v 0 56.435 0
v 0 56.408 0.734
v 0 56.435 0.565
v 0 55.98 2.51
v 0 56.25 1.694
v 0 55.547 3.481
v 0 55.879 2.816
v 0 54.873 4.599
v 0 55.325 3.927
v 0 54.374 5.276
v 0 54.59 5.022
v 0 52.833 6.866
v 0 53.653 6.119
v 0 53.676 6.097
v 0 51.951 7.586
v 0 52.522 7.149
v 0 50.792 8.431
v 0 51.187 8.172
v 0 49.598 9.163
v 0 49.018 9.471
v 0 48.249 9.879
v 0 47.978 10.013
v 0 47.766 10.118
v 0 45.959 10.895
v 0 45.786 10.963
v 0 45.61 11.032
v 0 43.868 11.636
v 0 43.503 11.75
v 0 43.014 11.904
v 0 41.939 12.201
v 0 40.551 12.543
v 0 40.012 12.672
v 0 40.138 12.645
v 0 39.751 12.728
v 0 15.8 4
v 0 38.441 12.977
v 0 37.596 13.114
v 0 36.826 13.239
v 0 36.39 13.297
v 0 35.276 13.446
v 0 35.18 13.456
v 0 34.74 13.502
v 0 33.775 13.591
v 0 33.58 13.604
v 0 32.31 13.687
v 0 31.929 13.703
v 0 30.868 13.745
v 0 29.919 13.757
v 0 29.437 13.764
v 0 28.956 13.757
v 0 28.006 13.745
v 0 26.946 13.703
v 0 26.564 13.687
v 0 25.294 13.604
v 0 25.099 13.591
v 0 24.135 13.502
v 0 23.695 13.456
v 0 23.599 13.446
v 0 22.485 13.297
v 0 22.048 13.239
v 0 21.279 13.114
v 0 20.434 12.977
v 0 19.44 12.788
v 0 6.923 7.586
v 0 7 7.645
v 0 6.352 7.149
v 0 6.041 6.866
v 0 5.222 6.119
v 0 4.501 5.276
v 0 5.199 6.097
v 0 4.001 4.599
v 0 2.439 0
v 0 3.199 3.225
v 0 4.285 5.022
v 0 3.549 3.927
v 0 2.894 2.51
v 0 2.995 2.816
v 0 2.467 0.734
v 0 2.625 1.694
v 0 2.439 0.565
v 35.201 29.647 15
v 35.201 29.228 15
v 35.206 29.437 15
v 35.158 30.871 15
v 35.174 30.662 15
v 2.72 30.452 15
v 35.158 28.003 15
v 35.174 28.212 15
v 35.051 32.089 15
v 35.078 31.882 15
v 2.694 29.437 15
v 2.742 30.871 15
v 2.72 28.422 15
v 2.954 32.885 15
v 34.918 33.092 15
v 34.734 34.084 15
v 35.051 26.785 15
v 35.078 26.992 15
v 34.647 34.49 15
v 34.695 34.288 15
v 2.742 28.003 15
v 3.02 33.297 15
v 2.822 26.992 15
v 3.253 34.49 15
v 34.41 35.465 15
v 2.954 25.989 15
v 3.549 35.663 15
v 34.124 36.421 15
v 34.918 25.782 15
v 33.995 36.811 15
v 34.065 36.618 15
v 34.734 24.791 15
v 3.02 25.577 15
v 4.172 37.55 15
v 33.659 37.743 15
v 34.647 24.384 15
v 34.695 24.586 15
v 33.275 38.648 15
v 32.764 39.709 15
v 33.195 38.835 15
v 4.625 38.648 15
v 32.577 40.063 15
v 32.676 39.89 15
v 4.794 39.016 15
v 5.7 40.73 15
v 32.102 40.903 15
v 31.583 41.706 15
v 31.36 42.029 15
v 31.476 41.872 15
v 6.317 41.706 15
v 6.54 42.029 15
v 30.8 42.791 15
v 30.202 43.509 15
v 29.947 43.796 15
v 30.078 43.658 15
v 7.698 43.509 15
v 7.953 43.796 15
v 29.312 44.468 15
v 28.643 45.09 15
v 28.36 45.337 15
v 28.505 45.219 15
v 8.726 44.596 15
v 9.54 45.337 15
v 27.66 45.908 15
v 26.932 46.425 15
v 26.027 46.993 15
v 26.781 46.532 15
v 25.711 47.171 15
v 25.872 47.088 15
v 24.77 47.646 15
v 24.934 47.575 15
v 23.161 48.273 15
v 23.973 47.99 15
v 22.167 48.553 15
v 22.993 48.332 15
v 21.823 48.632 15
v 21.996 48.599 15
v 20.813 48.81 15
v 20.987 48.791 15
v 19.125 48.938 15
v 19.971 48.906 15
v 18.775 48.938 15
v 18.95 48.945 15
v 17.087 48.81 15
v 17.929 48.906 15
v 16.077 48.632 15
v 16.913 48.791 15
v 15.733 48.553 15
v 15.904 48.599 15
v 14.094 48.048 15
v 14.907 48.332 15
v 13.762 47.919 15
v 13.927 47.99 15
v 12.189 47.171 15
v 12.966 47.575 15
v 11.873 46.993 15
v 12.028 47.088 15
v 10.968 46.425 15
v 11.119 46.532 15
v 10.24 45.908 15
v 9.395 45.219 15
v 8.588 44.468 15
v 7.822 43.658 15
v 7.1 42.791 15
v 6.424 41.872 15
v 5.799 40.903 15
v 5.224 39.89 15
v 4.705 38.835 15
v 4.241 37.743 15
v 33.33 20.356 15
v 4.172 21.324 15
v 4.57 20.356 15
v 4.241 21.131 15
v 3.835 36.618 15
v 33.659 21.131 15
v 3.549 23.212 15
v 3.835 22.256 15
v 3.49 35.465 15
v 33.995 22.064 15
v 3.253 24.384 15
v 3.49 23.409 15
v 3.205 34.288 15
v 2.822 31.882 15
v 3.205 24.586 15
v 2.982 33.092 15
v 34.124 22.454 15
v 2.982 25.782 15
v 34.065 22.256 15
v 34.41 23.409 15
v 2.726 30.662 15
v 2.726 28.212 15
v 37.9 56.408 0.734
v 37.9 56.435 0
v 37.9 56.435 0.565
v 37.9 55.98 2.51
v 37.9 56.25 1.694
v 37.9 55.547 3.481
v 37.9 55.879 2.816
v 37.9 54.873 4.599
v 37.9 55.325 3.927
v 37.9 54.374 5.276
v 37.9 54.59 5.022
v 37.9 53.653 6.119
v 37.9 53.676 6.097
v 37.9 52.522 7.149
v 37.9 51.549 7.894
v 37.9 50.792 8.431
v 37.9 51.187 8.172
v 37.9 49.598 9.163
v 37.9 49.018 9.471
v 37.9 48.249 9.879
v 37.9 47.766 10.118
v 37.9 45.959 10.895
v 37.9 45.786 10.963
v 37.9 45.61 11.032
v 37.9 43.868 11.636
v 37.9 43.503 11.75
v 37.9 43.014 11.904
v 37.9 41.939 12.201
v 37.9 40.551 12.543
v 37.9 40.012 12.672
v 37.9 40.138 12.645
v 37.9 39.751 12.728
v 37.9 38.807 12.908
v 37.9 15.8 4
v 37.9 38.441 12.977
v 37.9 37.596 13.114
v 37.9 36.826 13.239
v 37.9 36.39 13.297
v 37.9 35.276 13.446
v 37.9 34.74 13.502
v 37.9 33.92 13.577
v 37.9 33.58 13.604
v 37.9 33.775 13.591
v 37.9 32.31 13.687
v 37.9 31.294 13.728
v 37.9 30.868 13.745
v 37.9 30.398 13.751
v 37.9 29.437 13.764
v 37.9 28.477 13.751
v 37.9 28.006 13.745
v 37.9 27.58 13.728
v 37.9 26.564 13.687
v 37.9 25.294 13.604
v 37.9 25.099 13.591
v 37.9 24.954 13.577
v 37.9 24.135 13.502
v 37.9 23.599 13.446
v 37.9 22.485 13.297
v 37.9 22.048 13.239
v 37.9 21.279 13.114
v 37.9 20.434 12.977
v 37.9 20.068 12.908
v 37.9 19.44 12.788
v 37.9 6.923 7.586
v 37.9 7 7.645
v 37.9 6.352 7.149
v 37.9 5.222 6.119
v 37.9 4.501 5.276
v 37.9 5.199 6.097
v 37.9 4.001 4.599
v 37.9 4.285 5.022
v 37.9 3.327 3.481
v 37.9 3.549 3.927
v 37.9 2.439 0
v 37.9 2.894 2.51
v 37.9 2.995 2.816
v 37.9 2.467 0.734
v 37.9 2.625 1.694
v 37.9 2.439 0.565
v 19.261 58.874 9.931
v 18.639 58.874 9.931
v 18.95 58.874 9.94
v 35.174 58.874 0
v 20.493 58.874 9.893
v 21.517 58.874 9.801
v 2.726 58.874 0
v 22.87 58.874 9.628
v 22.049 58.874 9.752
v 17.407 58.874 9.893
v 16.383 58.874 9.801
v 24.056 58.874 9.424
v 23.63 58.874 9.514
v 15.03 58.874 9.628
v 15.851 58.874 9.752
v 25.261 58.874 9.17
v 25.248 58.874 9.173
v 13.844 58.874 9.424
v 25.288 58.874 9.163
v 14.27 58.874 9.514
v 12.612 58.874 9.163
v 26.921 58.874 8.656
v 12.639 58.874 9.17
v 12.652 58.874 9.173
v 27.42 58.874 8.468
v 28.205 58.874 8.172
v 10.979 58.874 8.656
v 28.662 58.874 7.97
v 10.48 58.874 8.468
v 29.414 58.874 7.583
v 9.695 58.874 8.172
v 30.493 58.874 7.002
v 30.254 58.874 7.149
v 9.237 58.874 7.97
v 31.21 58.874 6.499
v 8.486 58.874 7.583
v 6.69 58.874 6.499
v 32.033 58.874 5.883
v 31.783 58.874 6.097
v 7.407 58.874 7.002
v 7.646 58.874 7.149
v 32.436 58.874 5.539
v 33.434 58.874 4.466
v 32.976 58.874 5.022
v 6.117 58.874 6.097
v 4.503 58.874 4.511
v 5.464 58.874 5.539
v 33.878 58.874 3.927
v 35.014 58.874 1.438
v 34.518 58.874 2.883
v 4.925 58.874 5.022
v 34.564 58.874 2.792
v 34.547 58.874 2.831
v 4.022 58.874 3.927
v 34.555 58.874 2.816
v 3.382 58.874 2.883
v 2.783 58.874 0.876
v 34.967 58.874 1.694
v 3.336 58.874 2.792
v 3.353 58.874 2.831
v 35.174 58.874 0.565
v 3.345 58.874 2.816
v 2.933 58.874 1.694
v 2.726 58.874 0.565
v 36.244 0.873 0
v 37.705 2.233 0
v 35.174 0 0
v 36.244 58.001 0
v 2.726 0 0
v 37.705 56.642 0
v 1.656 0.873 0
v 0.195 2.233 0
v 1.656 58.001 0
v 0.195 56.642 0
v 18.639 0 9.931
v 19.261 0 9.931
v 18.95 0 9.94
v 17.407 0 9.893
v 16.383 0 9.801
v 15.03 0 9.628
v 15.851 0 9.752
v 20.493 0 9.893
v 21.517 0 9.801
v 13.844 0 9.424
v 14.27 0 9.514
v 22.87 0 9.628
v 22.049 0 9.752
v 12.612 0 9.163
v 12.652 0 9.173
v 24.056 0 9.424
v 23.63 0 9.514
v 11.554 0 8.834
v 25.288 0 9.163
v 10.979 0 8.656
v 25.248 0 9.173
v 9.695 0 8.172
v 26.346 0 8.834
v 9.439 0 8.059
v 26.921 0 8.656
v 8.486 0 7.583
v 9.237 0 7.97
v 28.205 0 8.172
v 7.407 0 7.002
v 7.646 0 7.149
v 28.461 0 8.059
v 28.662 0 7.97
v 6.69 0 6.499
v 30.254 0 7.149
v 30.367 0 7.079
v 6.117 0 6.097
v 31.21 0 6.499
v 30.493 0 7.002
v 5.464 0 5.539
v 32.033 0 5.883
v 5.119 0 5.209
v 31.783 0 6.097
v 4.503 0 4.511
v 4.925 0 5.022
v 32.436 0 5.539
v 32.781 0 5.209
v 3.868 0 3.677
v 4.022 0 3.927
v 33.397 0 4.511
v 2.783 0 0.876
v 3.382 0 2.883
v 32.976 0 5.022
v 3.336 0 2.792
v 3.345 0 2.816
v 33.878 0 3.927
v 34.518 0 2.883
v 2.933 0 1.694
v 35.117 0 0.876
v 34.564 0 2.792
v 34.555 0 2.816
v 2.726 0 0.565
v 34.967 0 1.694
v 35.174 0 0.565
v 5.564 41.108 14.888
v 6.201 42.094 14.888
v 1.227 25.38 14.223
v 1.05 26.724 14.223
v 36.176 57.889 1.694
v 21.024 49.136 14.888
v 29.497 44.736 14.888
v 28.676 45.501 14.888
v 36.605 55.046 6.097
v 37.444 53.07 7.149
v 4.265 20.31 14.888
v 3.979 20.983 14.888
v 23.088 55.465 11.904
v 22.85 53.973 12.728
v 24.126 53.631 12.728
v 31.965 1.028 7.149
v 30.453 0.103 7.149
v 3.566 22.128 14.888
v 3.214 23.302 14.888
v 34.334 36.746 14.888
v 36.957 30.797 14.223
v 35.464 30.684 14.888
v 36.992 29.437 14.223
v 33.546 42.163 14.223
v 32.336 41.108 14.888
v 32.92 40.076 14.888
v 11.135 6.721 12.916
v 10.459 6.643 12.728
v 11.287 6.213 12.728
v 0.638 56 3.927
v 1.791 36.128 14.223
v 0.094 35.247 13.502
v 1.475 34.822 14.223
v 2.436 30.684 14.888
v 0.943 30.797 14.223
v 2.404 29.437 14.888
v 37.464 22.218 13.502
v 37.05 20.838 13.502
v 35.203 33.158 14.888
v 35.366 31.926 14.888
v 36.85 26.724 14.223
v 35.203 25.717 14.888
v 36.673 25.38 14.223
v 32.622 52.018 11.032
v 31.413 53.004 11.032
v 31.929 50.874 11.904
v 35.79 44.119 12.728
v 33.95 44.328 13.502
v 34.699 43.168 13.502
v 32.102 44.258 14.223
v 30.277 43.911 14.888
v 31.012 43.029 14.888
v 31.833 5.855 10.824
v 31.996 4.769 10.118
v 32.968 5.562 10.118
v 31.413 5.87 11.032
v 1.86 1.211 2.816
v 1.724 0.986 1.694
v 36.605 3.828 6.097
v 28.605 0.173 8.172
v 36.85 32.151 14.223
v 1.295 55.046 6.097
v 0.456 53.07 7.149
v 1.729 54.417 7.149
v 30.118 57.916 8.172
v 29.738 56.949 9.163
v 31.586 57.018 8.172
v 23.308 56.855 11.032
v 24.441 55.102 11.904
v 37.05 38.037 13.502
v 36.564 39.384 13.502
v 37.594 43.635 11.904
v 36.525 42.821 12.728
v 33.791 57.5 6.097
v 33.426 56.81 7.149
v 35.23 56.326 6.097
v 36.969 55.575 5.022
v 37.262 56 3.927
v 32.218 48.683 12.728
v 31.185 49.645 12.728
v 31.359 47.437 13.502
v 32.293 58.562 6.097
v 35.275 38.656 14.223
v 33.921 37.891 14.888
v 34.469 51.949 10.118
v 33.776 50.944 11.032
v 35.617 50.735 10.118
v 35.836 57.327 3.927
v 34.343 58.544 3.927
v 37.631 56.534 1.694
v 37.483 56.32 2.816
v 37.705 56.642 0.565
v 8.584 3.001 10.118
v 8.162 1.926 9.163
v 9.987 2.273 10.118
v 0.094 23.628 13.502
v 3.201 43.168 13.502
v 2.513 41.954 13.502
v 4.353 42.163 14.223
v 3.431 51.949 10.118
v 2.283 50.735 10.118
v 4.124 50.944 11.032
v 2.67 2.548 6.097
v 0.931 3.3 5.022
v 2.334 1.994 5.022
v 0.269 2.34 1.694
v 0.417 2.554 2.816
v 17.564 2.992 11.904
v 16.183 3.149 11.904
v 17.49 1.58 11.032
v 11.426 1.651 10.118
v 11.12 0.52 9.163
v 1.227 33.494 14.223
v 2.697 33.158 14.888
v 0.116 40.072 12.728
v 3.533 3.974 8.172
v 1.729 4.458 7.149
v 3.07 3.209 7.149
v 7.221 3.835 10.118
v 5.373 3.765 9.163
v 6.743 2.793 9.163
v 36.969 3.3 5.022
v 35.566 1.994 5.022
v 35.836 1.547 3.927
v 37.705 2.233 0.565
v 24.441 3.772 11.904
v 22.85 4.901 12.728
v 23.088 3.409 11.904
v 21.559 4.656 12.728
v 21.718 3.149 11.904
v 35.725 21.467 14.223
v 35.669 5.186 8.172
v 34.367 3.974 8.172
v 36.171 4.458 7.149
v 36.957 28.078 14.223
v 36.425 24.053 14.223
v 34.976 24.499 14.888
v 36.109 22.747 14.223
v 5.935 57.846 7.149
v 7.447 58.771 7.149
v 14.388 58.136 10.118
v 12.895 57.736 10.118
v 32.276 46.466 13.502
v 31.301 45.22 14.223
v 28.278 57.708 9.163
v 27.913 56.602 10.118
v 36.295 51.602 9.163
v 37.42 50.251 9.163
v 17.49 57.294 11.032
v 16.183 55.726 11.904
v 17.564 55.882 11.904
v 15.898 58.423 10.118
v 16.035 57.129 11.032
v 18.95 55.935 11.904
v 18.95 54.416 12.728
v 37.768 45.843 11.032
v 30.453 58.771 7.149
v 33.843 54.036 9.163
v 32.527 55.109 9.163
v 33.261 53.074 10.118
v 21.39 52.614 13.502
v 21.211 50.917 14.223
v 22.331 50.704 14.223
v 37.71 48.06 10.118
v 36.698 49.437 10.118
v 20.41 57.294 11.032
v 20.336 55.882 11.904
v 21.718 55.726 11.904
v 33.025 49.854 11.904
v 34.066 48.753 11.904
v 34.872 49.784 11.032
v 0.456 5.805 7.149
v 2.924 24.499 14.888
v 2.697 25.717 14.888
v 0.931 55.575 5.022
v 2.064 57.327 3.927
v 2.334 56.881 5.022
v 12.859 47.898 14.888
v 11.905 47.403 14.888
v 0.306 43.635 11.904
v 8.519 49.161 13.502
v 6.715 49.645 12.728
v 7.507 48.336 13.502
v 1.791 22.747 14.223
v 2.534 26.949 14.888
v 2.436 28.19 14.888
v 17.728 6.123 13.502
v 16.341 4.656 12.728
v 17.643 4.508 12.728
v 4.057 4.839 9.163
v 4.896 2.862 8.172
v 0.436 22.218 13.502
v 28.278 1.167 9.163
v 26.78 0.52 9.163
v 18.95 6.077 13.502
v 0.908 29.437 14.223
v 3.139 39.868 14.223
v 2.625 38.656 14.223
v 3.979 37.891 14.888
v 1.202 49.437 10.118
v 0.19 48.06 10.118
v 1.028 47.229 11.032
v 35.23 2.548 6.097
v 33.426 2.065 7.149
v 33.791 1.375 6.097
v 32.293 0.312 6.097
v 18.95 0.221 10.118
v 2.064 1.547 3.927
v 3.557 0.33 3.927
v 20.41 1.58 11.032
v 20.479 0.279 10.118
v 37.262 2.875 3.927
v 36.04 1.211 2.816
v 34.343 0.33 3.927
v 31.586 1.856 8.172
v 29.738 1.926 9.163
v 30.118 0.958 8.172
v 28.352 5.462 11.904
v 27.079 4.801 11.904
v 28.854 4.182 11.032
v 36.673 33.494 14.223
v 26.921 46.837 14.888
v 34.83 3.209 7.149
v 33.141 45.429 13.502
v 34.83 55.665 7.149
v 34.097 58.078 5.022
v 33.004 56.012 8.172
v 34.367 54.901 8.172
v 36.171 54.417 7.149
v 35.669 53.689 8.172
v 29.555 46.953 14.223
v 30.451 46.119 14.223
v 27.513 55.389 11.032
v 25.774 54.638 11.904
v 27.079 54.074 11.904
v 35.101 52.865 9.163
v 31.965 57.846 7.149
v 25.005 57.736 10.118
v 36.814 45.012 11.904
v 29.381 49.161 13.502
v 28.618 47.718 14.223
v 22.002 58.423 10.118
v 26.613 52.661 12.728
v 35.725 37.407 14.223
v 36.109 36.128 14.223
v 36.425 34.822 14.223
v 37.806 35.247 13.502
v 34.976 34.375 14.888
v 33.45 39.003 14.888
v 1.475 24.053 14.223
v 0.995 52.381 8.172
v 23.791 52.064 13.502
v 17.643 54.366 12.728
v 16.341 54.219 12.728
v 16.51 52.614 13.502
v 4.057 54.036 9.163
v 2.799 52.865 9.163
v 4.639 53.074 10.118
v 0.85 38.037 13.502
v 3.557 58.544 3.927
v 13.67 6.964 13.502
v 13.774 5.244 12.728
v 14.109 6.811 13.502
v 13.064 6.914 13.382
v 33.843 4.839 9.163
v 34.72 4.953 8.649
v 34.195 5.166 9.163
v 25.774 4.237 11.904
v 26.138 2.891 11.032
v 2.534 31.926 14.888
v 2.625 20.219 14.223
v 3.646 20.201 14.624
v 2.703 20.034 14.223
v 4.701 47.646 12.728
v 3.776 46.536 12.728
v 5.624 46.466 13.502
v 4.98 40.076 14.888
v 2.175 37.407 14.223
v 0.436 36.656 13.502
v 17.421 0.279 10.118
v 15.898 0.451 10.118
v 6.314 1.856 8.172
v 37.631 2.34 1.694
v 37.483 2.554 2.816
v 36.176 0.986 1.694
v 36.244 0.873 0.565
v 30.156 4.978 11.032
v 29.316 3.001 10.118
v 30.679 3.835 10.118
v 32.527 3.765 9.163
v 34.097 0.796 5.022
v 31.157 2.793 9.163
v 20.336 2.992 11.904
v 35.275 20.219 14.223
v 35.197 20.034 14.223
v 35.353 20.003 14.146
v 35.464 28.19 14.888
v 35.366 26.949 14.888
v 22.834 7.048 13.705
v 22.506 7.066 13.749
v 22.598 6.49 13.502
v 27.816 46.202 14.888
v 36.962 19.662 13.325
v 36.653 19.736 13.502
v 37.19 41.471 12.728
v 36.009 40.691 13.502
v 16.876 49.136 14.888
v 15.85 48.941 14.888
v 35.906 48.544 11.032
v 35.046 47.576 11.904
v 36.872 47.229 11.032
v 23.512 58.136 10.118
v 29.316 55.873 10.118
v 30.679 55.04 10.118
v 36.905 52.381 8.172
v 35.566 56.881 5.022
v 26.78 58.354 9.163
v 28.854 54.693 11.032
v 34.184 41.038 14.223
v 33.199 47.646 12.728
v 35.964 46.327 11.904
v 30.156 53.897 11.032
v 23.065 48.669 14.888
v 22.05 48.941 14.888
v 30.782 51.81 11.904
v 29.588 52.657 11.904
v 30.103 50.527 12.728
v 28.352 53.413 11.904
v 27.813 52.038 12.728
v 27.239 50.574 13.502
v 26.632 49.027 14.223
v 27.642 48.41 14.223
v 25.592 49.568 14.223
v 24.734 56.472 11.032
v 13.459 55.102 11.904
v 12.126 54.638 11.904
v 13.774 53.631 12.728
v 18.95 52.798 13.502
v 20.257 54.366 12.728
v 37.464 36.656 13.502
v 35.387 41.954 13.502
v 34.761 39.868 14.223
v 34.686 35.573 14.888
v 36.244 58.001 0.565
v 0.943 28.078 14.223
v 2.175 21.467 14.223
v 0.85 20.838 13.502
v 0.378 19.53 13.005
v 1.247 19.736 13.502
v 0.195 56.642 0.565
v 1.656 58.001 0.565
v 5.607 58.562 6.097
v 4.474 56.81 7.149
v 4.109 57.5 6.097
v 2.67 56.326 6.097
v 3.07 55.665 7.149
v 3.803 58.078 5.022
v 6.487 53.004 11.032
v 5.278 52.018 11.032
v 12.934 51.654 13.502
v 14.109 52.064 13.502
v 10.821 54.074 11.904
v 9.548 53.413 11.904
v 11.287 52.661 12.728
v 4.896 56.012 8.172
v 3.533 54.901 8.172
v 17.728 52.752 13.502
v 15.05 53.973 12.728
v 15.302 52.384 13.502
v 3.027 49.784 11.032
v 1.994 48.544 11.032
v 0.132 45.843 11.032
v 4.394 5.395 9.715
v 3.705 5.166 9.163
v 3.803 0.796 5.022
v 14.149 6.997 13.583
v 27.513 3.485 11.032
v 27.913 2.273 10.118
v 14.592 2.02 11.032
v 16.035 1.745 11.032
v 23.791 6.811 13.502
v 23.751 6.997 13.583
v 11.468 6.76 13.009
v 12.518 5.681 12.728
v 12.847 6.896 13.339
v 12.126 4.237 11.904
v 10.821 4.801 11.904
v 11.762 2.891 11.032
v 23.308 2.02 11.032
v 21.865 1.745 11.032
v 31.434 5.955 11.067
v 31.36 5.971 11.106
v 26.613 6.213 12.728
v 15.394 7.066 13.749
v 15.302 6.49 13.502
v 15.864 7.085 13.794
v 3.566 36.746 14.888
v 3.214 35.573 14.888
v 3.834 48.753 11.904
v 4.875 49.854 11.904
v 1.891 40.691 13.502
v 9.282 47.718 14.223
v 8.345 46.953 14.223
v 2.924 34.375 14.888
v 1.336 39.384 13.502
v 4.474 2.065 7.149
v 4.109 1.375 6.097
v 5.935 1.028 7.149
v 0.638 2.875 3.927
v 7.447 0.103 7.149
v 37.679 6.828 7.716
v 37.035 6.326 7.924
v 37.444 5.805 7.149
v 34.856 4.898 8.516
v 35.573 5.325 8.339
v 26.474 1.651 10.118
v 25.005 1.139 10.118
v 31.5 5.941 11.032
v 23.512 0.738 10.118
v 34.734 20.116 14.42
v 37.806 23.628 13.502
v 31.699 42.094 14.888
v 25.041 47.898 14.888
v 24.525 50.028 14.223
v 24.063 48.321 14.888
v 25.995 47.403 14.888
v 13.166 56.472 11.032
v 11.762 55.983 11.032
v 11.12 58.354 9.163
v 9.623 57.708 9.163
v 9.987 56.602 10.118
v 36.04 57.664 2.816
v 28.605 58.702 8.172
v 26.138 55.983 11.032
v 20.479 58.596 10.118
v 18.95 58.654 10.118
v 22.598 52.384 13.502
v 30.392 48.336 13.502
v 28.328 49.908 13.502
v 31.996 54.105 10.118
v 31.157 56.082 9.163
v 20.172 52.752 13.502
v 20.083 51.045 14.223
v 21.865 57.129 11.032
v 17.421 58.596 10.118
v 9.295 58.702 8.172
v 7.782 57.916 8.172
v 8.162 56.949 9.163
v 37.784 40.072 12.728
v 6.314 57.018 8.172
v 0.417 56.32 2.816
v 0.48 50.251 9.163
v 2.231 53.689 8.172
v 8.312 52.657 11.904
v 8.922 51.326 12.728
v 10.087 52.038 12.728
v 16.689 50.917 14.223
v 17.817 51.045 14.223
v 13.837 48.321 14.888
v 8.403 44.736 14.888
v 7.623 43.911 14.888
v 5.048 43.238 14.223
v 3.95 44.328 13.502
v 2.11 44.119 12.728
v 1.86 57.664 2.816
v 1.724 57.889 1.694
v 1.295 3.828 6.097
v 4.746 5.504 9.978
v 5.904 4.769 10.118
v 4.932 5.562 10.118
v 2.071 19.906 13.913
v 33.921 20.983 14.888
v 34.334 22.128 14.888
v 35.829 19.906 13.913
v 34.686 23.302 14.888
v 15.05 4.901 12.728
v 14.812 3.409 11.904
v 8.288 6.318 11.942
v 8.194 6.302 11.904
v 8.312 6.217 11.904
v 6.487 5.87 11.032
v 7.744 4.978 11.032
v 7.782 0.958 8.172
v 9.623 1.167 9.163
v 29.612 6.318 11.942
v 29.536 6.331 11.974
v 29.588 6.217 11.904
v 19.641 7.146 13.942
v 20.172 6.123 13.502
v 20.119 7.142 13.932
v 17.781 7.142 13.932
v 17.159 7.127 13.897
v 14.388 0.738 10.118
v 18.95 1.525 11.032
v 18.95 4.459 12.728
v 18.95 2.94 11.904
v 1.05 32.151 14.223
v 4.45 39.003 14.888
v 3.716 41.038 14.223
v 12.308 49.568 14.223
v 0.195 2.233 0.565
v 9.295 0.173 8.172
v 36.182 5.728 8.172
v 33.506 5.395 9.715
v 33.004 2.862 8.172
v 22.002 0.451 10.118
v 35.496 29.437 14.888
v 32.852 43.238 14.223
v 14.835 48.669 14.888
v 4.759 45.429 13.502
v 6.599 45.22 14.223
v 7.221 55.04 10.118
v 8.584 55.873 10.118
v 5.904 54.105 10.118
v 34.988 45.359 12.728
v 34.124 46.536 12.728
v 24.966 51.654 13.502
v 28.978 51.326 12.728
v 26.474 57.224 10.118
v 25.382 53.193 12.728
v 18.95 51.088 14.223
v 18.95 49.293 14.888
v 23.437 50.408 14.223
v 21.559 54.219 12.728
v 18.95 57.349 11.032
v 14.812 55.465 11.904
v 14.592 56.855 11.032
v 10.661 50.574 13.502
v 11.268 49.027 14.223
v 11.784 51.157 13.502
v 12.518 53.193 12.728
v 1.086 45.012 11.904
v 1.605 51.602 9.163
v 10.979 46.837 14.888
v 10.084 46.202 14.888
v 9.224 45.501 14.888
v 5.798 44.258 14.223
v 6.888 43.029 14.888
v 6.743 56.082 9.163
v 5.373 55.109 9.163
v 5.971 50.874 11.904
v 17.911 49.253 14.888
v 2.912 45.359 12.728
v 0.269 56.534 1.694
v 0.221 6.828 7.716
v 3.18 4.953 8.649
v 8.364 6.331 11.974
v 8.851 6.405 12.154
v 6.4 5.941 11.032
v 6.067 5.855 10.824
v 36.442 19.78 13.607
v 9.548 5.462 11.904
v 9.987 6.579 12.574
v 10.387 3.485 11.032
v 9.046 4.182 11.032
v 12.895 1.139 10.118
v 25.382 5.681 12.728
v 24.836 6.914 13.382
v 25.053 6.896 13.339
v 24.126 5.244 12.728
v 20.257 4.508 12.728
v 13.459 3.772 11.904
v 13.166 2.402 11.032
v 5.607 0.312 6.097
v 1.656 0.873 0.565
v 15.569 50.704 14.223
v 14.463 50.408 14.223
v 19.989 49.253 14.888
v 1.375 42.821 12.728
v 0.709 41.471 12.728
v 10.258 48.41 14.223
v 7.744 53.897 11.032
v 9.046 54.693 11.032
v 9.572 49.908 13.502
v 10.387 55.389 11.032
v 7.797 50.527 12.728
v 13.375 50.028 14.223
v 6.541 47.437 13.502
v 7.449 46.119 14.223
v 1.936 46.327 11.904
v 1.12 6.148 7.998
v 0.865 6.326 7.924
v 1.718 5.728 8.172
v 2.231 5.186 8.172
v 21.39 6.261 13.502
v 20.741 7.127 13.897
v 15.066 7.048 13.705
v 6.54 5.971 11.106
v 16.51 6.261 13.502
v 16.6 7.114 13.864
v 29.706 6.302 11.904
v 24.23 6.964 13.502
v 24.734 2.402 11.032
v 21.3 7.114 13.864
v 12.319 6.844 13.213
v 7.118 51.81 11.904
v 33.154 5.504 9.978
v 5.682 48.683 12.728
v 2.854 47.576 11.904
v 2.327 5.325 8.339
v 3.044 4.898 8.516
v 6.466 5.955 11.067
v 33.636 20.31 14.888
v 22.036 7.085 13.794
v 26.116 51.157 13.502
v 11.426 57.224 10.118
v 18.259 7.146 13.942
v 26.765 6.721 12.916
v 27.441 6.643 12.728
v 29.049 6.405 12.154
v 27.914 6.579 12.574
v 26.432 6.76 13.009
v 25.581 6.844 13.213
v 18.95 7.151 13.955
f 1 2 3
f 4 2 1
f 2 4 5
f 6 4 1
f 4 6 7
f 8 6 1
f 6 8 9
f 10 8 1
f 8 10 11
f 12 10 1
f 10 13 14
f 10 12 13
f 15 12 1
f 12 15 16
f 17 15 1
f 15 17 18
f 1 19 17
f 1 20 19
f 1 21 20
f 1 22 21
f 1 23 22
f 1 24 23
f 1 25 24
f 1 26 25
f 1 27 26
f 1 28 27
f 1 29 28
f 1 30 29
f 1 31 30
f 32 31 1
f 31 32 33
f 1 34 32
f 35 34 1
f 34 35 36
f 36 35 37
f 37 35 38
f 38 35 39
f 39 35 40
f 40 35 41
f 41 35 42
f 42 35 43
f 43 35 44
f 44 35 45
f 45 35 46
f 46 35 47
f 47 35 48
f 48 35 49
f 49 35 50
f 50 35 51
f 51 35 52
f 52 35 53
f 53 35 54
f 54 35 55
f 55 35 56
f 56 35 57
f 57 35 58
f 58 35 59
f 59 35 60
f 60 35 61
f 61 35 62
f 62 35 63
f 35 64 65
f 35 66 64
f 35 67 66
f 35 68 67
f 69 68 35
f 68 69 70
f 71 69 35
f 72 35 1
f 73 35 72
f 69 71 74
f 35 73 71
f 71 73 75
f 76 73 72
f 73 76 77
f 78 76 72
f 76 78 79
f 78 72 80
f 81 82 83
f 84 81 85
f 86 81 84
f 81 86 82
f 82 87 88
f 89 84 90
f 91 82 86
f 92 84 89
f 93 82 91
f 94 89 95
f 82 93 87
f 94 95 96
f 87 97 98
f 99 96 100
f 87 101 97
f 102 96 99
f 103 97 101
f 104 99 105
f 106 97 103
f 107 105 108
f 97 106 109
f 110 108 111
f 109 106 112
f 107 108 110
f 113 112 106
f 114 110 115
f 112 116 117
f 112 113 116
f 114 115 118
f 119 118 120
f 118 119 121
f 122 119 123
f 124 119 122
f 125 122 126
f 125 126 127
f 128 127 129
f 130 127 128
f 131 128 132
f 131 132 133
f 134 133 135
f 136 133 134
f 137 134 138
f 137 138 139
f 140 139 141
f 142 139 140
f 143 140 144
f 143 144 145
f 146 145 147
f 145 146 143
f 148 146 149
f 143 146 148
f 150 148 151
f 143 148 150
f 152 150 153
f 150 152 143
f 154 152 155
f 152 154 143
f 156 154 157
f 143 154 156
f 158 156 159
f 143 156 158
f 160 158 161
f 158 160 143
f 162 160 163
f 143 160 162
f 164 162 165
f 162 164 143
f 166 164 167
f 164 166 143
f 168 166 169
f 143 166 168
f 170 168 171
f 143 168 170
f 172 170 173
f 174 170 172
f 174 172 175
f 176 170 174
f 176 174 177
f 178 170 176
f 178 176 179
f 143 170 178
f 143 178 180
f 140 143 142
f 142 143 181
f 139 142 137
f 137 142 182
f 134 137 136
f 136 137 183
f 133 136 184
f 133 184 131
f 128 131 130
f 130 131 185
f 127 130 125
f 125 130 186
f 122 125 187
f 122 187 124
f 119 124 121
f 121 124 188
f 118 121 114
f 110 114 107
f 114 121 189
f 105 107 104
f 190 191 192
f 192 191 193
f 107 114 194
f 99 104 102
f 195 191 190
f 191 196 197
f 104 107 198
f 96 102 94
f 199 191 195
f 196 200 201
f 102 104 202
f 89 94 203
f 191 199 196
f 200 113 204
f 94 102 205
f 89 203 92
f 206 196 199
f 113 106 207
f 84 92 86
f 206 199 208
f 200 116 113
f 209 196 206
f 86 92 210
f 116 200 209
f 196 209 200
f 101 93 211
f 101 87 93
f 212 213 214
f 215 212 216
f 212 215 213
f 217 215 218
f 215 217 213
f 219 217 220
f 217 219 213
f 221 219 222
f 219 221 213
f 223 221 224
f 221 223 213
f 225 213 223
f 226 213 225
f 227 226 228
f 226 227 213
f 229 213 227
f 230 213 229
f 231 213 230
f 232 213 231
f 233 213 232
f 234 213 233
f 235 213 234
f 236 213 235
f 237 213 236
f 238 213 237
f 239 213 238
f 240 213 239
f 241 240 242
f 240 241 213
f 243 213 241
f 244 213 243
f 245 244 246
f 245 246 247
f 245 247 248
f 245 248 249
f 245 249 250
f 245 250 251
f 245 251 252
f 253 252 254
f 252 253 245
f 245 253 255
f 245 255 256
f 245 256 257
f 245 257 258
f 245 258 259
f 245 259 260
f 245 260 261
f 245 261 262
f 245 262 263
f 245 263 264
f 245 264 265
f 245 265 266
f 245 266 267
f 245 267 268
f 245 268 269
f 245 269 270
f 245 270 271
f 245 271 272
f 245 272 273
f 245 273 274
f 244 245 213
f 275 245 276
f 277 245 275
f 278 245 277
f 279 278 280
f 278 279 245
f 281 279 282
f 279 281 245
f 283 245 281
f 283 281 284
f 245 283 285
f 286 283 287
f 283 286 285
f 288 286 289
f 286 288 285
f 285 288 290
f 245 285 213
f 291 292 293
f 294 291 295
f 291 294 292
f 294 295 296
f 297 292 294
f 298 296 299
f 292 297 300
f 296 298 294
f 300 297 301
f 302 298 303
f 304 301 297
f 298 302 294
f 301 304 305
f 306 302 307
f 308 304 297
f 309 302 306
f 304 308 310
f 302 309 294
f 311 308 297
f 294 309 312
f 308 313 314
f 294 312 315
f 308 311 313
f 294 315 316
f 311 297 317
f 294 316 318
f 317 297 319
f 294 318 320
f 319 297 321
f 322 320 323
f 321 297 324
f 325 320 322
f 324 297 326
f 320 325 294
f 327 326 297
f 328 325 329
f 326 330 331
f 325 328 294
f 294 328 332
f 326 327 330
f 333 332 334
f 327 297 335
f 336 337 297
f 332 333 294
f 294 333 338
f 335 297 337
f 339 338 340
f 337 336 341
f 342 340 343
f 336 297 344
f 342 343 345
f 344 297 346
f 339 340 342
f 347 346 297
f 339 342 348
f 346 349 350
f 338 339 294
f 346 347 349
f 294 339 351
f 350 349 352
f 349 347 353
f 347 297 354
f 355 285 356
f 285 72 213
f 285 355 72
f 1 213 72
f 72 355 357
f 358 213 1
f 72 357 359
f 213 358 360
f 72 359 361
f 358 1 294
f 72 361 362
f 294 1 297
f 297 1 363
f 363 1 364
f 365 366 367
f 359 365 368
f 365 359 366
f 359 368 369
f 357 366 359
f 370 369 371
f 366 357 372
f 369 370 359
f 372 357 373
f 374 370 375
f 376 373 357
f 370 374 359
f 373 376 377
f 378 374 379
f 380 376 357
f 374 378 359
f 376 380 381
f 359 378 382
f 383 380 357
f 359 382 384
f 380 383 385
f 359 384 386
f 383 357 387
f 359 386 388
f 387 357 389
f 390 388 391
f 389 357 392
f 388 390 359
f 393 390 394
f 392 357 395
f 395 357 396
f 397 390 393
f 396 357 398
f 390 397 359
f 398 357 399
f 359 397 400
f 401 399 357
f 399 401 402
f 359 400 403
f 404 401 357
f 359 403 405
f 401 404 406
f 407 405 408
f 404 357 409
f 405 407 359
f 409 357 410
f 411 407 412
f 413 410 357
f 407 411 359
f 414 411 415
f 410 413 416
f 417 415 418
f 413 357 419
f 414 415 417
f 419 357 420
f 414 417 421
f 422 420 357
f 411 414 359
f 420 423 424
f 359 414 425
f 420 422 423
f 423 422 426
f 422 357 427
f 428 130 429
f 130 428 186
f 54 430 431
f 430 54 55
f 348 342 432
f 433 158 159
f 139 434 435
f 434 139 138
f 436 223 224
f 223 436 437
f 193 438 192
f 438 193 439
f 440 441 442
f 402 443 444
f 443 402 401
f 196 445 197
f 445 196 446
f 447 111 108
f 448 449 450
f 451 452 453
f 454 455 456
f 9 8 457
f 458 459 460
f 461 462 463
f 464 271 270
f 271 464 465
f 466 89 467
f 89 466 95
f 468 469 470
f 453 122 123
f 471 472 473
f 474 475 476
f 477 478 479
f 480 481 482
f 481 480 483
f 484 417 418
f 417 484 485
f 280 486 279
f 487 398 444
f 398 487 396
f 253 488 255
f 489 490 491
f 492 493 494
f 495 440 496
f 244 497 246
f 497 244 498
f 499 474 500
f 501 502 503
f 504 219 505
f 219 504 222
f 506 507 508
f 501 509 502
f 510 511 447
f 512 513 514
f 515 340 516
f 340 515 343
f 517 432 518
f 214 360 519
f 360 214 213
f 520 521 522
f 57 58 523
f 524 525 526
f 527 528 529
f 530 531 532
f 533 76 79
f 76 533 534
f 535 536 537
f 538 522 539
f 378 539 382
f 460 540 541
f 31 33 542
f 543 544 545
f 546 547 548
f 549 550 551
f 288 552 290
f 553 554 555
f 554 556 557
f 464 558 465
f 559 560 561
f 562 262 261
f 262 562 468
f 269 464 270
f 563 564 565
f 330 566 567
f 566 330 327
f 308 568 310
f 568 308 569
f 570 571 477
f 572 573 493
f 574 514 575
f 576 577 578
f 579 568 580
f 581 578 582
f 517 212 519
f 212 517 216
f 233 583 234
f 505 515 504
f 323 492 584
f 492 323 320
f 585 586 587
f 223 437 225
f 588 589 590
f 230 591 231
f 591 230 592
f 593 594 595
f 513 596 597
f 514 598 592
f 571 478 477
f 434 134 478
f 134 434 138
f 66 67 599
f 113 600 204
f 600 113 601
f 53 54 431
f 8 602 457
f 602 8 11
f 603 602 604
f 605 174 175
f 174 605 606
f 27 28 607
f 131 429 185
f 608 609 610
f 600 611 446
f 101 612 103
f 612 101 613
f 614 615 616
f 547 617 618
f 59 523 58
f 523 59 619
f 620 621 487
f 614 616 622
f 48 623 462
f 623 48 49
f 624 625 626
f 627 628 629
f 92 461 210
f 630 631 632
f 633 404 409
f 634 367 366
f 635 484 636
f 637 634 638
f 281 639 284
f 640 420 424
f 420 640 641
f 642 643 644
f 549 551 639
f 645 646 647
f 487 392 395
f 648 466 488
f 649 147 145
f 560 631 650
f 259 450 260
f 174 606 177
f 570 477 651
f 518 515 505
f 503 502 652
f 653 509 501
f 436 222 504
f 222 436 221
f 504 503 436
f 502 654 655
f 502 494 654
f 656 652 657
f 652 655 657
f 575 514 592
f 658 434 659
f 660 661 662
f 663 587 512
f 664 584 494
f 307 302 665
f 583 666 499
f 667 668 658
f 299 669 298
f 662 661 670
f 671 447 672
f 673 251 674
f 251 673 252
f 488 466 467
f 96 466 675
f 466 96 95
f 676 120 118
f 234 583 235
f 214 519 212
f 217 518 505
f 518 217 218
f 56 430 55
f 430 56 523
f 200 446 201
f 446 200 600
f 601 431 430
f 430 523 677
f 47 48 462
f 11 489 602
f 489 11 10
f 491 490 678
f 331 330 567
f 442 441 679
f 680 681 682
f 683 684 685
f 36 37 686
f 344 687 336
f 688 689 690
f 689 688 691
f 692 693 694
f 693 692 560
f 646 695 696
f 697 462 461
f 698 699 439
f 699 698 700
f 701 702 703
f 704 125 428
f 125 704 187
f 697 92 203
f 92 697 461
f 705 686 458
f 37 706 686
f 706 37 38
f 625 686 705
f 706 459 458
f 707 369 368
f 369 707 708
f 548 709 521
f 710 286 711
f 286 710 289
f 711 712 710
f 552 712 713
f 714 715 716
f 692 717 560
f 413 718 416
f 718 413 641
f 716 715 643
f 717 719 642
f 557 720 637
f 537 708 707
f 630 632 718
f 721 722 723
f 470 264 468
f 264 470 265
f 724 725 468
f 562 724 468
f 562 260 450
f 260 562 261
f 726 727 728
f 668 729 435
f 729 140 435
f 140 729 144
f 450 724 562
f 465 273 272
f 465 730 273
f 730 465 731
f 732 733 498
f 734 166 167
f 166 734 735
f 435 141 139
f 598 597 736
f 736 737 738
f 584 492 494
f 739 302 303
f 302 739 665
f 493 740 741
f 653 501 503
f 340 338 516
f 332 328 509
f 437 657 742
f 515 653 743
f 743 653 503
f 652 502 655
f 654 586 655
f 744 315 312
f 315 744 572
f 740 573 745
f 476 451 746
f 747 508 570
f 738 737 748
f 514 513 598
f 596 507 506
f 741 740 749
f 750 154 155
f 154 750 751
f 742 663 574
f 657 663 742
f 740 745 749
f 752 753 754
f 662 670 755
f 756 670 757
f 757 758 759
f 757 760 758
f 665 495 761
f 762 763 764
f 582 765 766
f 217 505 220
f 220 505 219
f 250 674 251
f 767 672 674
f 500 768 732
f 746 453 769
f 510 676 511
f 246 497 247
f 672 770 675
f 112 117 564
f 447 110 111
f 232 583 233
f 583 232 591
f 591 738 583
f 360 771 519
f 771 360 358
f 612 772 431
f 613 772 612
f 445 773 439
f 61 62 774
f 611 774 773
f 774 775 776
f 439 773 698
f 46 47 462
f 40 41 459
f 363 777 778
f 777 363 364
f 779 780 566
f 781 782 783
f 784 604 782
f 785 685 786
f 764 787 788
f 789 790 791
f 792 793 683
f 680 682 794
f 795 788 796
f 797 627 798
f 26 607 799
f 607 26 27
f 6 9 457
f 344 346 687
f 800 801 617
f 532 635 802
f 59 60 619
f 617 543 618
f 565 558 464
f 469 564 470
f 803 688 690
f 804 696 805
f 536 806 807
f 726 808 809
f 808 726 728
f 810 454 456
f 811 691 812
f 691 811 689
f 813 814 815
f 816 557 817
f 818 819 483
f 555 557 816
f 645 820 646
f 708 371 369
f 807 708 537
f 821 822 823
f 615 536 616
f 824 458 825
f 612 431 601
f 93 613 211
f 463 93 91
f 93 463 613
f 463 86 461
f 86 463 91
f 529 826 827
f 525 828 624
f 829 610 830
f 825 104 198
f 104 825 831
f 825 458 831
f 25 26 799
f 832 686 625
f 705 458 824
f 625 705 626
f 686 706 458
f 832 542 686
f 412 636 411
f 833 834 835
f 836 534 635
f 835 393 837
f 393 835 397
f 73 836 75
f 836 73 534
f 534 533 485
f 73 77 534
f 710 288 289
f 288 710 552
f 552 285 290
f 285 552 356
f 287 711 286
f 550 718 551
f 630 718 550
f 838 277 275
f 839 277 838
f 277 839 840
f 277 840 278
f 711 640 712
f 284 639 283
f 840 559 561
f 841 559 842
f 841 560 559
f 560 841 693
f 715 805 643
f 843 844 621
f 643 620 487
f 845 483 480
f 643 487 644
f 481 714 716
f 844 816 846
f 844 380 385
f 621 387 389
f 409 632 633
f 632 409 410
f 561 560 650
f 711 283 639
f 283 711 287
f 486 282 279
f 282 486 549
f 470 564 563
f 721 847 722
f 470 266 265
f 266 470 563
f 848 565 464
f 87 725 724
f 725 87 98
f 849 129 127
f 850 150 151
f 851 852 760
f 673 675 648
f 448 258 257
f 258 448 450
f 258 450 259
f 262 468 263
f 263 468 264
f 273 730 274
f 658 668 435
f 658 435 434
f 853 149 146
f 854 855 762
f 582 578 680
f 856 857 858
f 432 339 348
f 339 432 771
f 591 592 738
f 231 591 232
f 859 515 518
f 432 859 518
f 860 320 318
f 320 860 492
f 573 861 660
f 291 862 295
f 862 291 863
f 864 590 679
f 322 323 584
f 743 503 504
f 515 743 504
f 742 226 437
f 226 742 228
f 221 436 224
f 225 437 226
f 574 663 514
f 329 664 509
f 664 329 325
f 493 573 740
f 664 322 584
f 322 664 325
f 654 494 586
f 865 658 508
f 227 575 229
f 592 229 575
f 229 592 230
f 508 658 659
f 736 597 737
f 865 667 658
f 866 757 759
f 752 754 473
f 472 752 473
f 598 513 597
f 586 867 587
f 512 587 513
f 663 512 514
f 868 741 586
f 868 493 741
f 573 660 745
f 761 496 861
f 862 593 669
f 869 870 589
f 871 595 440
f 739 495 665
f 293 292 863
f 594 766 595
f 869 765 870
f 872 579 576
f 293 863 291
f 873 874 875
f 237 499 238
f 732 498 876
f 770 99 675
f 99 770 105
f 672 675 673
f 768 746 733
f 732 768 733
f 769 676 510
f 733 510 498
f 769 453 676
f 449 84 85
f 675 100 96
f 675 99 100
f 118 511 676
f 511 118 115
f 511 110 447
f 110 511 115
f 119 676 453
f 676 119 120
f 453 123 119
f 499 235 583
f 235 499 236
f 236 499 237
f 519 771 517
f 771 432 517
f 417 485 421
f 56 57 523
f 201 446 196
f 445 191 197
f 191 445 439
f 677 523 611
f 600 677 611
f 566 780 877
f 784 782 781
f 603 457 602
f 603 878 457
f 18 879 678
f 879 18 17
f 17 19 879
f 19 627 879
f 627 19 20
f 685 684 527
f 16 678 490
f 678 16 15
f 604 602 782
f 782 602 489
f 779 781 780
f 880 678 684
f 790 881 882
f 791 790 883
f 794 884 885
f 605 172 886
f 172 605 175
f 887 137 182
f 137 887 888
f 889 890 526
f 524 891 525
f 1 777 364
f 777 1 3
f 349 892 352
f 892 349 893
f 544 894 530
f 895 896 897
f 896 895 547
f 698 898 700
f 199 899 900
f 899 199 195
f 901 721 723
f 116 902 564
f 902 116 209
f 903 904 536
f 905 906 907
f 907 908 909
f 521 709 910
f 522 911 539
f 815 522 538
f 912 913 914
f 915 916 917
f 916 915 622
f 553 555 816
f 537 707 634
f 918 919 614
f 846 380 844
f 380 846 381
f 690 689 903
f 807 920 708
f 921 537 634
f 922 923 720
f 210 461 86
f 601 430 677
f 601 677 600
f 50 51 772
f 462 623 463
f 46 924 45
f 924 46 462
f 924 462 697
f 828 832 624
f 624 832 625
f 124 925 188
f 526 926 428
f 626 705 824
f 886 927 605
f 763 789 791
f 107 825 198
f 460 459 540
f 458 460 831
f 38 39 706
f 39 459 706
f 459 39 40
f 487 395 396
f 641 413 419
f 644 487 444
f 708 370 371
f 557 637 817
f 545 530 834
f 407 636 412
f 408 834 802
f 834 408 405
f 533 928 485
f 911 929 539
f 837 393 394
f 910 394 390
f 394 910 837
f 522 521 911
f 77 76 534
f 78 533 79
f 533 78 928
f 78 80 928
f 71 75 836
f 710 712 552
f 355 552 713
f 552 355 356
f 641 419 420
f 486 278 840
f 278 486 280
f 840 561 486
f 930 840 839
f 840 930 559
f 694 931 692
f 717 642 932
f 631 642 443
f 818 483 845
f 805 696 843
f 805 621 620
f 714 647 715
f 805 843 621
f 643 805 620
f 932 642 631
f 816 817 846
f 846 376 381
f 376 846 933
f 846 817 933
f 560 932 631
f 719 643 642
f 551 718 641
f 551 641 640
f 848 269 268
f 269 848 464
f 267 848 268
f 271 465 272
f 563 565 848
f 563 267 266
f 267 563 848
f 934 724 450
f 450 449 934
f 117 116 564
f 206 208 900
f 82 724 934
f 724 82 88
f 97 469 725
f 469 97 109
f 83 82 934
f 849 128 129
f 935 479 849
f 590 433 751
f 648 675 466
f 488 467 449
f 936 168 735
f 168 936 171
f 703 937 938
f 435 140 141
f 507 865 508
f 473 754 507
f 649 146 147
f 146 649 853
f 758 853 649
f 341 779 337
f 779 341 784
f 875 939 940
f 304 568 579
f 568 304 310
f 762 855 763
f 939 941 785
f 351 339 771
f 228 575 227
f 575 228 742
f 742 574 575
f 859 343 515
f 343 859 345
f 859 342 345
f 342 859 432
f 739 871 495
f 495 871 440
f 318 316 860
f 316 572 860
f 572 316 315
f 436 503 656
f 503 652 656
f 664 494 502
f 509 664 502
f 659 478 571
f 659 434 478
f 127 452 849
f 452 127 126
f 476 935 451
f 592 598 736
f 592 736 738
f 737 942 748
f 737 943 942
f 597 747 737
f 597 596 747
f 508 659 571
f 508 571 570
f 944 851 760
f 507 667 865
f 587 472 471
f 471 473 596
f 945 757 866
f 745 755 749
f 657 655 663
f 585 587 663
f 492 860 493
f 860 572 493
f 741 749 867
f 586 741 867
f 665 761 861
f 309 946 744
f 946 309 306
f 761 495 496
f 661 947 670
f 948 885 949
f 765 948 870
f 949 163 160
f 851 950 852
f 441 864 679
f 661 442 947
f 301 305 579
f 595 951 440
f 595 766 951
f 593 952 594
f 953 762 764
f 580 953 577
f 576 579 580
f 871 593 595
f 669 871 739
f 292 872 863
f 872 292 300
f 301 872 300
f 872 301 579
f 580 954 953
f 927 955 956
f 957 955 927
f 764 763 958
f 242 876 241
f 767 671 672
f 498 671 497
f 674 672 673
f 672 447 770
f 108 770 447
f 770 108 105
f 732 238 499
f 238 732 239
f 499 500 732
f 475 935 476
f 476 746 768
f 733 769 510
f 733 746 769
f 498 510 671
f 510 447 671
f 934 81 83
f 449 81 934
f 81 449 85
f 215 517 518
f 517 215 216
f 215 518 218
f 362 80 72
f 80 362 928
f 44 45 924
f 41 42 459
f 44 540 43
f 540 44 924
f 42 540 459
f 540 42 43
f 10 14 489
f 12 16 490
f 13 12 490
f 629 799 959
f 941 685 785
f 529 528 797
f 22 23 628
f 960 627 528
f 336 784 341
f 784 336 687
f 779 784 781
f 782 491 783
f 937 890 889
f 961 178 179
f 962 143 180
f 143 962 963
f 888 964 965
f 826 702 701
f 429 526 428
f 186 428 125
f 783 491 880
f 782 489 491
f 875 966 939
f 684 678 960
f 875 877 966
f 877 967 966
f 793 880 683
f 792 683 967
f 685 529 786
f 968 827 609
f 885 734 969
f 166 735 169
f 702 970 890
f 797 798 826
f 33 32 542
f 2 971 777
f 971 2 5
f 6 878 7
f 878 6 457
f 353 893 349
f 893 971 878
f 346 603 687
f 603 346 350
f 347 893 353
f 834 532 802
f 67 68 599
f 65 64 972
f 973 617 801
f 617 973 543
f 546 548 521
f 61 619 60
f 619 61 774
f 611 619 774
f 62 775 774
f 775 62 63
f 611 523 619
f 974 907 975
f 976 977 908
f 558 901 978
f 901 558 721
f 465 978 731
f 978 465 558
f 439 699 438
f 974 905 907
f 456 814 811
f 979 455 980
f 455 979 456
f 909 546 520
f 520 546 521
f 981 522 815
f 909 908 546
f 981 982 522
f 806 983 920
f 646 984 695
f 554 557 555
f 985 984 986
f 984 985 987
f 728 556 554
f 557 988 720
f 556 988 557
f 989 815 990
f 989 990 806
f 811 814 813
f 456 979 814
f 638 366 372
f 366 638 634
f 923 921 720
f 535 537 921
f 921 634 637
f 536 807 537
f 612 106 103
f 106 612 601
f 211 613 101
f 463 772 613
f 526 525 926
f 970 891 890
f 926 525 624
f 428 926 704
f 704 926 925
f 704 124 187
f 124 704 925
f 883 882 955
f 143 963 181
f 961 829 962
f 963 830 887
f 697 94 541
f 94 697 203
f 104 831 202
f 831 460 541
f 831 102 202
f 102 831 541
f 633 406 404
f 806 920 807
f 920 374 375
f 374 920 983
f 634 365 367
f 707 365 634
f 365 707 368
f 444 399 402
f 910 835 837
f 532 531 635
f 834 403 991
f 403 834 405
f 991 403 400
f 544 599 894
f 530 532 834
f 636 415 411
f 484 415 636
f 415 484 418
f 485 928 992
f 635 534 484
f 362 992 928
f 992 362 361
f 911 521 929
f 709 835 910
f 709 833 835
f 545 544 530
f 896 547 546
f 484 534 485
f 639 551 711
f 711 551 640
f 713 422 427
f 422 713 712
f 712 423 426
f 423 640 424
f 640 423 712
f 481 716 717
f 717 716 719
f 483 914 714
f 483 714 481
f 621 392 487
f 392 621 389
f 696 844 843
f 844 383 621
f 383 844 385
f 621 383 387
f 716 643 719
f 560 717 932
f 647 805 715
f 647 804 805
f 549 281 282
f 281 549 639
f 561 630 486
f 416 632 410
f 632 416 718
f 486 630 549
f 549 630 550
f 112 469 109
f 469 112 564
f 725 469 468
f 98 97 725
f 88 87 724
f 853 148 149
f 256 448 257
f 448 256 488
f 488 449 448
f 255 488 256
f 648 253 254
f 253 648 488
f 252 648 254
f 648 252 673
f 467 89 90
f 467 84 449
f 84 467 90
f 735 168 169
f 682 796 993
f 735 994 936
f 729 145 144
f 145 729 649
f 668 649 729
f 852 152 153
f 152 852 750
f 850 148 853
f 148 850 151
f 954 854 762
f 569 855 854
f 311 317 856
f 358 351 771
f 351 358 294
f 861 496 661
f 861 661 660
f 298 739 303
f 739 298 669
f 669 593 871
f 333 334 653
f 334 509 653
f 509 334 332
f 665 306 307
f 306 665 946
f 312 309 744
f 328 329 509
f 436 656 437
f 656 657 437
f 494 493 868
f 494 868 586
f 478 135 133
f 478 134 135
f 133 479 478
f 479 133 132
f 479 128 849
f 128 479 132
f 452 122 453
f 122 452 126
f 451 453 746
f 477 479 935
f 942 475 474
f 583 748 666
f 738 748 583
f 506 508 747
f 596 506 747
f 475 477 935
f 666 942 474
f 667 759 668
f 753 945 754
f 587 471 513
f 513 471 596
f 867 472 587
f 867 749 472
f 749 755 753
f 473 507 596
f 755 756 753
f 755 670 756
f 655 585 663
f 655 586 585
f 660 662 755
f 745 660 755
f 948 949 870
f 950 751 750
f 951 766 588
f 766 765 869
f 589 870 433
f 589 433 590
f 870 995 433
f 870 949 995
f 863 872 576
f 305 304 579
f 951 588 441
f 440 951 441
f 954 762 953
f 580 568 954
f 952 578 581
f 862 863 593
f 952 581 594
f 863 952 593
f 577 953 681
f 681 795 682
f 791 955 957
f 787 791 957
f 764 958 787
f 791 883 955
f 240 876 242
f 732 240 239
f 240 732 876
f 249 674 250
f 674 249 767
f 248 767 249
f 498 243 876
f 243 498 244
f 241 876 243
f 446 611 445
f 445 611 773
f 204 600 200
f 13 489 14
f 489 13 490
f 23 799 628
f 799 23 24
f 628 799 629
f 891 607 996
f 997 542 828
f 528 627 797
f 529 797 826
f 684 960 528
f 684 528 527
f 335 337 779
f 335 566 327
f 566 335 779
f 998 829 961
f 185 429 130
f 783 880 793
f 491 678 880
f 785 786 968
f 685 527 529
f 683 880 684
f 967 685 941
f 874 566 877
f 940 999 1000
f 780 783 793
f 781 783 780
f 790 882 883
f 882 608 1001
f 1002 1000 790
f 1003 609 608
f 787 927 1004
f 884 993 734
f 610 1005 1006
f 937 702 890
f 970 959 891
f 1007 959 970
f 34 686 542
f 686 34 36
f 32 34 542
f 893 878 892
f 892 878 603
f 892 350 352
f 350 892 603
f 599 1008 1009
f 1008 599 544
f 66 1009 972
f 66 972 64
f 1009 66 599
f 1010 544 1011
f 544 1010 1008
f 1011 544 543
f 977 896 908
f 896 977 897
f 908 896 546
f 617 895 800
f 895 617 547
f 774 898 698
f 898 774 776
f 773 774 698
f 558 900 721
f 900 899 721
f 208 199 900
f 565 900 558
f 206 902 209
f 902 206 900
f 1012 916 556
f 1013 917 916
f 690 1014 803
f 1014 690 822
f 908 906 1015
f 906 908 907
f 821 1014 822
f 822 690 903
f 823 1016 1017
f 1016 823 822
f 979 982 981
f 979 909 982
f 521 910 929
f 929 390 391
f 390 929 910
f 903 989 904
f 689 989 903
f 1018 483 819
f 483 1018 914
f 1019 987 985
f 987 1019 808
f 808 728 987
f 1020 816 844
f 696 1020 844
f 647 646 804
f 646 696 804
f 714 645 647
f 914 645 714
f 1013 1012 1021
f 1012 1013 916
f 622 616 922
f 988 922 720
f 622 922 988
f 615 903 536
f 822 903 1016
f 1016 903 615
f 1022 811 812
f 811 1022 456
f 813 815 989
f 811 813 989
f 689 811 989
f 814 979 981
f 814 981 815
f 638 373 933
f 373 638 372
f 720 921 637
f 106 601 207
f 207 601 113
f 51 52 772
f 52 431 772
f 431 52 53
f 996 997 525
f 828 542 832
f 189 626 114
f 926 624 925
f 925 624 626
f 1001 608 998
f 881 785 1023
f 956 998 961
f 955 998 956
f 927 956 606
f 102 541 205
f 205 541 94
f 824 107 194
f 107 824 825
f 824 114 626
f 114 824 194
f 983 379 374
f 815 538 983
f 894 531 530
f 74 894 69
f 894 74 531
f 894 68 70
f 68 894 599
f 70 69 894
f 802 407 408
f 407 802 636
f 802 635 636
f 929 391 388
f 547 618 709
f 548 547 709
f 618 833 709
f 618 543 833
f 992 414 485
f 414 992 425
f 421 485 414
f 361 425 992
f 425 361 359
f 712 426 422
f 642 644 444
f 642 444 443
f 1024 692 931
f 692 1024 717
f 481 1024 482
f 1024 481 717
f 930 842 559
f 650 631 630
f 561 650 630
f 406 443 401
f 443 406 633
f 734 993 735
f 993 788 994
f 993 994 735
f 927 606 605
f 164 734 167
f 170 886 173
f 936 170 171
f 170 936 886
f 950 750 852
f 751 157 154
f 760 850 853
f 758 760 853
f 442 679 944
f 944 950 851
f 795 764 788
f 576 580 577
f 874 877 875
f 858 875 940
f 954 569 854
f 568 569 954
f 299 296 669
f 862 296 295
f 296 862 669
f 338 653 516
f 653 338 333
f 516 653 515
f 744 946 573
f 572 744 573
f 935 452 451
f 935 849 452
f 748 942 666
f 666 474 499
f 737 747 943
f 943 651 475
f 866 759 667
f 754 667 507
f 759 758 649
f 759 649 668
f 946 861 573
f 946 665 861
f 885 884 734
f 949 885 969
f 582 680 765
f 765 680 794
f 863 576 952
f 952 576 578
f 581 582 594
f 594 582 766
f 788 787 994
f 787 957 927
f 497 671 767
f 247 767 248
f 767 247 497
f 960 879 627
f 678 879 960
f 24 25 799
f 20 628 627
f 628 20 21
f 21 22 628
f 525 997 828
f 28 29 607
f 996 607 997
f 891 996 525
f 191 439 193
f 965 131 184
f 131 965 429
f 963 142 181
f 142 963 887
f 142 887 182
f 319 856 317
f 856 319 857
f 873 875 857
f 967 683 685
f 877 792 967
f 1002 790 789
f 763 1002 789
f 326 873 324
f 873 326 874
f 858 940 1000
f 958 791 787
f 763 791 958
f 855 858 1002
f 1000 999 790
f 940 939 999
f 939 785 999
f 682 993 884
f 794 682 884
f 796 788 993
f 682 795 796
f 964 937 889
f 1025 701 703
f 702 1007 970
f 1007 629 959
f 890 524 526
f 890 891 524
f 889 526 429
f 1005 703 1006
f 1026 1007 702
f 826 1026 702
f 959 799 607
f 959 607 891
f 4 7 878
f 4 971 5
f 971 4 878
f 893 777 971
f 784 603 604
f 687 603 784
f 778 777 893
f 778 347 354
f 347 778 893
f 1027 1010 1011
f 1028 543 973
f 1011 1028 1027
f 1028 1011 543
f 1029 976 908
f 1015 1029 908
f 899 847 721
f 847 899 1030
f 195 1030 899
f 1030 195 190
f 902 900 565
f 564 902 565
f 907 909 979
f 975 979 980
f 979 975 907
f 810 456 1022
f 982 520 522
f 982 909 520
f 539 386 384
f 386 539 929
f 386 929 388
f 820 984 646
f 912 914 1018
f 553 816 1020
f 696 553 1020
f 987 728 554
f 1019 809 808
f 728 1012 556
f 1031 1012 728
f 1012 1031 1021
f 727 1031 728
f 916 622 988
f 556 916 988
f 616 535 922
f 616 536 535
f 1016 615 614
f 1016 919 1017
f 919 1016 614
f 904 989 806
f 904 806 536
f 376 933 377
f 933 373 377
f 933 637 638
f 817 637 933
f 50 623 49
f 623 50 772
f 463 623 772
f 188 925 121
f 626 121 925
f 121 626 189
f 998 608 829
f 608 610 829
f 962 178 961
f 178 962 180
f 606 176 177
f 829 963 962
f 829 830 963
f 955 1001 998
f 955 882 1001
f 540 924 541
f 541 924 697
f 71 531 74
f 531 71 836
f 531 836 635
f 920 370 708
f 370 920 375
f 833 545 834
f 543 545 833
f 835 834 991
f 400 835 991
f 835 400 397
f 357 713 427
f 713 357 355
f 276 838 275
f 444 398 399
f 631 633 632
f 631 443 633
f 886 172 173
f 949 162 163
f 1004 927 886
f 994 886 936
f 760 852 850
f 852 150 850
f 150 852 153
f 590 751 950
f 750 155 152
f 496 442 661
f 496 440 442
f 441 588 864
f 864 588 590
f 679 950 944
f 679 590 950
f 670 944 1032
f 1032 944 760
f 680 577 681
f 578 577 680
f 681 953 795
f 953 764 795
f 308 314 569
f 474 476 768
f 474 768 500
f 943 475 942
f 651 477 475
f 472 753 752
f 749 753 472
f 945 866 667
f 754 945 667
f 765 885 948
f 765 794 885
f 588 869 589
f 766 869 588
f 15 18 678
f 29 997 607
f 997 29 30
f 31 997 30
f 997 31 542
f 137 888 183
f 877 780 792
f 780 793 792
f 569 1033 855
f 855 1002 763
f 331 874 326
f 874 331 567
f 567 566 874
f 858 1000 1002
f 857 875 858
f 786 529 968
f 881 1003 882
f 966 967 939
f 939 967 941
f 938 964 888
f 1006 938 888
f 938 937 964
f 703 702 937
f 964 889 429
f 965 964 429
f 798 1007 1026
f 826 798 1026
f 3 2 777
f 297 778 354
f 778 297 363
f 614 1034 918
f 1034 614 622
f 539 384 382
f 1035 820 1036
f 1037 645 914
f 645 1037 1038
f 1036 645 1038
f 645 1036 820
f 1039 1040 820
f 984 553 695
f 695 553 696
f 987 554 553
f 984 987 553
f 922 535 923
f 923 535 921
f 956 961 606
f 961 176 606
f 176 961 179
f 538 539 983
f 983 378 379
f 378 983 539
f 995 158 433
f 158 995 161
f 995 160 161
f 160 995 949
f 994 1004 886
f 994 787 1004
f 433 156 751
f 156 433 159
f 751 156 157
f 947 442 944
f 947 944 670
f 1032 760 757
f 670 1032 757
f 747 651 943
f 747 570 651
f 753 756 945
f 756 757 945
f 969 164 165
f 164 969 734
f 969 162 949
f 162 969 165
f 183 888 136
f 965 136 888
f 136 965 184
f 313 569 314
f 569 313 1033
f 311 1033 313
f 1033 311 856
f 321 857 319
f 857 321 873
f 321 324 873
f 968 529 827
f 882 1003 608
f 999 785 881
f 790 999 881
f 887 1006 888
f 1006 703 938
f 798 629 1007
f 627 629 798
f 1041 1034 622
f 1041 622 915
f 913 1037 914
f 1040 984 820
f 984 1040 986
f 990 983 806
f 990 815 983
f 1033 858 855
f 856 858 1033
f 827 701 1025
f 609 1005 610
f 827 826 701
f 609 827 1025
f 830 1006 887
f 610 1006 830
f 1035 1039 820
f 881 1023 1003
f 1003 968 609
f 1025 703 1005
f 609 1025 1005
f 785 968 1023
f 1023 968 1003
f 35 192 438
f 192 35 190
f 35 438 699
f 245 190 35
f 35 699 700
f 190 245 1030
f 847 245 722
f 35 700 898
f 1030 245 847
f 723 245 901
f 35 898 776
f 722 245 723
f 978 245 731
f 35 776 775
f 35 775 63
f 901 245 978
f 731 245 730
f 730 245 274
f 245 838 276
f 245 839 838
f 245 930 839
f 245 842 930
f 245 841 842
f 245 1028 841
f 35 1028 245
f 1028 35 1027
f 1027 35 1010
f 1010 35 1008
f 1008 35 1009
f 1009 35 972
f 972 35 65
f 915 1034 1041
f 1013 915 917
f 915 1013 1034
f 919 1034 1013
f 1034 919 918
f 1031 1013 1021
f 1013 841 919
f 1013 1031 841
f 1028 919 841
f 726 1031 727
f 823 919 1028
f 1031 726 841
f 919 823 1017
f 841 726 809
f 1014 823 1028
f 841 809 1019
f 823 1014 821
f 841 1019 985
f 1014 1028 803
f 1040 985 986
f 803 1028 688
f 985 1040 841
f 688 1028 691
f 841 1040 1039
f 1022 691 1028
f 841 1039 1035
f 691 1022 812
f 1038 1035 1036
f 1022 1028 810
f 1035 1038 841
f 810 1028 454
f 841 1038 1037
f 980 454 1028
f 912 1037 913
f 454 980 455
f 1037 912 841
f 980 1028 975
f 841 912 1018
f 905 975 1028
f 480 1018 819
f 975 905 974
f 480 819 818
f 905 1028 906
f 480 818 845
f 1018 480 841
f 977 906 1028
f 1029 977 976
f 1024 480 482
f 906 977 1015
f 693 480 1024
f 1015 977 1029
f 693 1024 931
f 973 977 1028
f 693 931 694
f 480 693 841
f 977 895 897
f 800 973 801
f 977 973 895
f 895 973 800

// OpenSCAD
// cell
cx = 75.8;
cy = 11.8;
ca = 22.5;
ch = 130; // guess

overhang = 30;
minimum_depth = 4;
stand_depth = 15;

base = minimum_depth + overhang + 0.5*ch*sin(ca);

$fn=100;

translate([0, 0, 0]) difference() {
    intersection() {
        translate([0, 0, 0]) cube([cx/2, base, stand_depth]);

        translate([cx/4,  base/2, 0]) scale([1, 1.2, 1.2*2*stand_depth/base]) sphere(r=base * 0.5);
    }
    color("pink") translate([-cx/4, cy + minimum_depth, minimum_depth]) rotate([-ca, 0, 0]) translate([0, -cy, 0]) cube([cx, cy, ch]);
}
